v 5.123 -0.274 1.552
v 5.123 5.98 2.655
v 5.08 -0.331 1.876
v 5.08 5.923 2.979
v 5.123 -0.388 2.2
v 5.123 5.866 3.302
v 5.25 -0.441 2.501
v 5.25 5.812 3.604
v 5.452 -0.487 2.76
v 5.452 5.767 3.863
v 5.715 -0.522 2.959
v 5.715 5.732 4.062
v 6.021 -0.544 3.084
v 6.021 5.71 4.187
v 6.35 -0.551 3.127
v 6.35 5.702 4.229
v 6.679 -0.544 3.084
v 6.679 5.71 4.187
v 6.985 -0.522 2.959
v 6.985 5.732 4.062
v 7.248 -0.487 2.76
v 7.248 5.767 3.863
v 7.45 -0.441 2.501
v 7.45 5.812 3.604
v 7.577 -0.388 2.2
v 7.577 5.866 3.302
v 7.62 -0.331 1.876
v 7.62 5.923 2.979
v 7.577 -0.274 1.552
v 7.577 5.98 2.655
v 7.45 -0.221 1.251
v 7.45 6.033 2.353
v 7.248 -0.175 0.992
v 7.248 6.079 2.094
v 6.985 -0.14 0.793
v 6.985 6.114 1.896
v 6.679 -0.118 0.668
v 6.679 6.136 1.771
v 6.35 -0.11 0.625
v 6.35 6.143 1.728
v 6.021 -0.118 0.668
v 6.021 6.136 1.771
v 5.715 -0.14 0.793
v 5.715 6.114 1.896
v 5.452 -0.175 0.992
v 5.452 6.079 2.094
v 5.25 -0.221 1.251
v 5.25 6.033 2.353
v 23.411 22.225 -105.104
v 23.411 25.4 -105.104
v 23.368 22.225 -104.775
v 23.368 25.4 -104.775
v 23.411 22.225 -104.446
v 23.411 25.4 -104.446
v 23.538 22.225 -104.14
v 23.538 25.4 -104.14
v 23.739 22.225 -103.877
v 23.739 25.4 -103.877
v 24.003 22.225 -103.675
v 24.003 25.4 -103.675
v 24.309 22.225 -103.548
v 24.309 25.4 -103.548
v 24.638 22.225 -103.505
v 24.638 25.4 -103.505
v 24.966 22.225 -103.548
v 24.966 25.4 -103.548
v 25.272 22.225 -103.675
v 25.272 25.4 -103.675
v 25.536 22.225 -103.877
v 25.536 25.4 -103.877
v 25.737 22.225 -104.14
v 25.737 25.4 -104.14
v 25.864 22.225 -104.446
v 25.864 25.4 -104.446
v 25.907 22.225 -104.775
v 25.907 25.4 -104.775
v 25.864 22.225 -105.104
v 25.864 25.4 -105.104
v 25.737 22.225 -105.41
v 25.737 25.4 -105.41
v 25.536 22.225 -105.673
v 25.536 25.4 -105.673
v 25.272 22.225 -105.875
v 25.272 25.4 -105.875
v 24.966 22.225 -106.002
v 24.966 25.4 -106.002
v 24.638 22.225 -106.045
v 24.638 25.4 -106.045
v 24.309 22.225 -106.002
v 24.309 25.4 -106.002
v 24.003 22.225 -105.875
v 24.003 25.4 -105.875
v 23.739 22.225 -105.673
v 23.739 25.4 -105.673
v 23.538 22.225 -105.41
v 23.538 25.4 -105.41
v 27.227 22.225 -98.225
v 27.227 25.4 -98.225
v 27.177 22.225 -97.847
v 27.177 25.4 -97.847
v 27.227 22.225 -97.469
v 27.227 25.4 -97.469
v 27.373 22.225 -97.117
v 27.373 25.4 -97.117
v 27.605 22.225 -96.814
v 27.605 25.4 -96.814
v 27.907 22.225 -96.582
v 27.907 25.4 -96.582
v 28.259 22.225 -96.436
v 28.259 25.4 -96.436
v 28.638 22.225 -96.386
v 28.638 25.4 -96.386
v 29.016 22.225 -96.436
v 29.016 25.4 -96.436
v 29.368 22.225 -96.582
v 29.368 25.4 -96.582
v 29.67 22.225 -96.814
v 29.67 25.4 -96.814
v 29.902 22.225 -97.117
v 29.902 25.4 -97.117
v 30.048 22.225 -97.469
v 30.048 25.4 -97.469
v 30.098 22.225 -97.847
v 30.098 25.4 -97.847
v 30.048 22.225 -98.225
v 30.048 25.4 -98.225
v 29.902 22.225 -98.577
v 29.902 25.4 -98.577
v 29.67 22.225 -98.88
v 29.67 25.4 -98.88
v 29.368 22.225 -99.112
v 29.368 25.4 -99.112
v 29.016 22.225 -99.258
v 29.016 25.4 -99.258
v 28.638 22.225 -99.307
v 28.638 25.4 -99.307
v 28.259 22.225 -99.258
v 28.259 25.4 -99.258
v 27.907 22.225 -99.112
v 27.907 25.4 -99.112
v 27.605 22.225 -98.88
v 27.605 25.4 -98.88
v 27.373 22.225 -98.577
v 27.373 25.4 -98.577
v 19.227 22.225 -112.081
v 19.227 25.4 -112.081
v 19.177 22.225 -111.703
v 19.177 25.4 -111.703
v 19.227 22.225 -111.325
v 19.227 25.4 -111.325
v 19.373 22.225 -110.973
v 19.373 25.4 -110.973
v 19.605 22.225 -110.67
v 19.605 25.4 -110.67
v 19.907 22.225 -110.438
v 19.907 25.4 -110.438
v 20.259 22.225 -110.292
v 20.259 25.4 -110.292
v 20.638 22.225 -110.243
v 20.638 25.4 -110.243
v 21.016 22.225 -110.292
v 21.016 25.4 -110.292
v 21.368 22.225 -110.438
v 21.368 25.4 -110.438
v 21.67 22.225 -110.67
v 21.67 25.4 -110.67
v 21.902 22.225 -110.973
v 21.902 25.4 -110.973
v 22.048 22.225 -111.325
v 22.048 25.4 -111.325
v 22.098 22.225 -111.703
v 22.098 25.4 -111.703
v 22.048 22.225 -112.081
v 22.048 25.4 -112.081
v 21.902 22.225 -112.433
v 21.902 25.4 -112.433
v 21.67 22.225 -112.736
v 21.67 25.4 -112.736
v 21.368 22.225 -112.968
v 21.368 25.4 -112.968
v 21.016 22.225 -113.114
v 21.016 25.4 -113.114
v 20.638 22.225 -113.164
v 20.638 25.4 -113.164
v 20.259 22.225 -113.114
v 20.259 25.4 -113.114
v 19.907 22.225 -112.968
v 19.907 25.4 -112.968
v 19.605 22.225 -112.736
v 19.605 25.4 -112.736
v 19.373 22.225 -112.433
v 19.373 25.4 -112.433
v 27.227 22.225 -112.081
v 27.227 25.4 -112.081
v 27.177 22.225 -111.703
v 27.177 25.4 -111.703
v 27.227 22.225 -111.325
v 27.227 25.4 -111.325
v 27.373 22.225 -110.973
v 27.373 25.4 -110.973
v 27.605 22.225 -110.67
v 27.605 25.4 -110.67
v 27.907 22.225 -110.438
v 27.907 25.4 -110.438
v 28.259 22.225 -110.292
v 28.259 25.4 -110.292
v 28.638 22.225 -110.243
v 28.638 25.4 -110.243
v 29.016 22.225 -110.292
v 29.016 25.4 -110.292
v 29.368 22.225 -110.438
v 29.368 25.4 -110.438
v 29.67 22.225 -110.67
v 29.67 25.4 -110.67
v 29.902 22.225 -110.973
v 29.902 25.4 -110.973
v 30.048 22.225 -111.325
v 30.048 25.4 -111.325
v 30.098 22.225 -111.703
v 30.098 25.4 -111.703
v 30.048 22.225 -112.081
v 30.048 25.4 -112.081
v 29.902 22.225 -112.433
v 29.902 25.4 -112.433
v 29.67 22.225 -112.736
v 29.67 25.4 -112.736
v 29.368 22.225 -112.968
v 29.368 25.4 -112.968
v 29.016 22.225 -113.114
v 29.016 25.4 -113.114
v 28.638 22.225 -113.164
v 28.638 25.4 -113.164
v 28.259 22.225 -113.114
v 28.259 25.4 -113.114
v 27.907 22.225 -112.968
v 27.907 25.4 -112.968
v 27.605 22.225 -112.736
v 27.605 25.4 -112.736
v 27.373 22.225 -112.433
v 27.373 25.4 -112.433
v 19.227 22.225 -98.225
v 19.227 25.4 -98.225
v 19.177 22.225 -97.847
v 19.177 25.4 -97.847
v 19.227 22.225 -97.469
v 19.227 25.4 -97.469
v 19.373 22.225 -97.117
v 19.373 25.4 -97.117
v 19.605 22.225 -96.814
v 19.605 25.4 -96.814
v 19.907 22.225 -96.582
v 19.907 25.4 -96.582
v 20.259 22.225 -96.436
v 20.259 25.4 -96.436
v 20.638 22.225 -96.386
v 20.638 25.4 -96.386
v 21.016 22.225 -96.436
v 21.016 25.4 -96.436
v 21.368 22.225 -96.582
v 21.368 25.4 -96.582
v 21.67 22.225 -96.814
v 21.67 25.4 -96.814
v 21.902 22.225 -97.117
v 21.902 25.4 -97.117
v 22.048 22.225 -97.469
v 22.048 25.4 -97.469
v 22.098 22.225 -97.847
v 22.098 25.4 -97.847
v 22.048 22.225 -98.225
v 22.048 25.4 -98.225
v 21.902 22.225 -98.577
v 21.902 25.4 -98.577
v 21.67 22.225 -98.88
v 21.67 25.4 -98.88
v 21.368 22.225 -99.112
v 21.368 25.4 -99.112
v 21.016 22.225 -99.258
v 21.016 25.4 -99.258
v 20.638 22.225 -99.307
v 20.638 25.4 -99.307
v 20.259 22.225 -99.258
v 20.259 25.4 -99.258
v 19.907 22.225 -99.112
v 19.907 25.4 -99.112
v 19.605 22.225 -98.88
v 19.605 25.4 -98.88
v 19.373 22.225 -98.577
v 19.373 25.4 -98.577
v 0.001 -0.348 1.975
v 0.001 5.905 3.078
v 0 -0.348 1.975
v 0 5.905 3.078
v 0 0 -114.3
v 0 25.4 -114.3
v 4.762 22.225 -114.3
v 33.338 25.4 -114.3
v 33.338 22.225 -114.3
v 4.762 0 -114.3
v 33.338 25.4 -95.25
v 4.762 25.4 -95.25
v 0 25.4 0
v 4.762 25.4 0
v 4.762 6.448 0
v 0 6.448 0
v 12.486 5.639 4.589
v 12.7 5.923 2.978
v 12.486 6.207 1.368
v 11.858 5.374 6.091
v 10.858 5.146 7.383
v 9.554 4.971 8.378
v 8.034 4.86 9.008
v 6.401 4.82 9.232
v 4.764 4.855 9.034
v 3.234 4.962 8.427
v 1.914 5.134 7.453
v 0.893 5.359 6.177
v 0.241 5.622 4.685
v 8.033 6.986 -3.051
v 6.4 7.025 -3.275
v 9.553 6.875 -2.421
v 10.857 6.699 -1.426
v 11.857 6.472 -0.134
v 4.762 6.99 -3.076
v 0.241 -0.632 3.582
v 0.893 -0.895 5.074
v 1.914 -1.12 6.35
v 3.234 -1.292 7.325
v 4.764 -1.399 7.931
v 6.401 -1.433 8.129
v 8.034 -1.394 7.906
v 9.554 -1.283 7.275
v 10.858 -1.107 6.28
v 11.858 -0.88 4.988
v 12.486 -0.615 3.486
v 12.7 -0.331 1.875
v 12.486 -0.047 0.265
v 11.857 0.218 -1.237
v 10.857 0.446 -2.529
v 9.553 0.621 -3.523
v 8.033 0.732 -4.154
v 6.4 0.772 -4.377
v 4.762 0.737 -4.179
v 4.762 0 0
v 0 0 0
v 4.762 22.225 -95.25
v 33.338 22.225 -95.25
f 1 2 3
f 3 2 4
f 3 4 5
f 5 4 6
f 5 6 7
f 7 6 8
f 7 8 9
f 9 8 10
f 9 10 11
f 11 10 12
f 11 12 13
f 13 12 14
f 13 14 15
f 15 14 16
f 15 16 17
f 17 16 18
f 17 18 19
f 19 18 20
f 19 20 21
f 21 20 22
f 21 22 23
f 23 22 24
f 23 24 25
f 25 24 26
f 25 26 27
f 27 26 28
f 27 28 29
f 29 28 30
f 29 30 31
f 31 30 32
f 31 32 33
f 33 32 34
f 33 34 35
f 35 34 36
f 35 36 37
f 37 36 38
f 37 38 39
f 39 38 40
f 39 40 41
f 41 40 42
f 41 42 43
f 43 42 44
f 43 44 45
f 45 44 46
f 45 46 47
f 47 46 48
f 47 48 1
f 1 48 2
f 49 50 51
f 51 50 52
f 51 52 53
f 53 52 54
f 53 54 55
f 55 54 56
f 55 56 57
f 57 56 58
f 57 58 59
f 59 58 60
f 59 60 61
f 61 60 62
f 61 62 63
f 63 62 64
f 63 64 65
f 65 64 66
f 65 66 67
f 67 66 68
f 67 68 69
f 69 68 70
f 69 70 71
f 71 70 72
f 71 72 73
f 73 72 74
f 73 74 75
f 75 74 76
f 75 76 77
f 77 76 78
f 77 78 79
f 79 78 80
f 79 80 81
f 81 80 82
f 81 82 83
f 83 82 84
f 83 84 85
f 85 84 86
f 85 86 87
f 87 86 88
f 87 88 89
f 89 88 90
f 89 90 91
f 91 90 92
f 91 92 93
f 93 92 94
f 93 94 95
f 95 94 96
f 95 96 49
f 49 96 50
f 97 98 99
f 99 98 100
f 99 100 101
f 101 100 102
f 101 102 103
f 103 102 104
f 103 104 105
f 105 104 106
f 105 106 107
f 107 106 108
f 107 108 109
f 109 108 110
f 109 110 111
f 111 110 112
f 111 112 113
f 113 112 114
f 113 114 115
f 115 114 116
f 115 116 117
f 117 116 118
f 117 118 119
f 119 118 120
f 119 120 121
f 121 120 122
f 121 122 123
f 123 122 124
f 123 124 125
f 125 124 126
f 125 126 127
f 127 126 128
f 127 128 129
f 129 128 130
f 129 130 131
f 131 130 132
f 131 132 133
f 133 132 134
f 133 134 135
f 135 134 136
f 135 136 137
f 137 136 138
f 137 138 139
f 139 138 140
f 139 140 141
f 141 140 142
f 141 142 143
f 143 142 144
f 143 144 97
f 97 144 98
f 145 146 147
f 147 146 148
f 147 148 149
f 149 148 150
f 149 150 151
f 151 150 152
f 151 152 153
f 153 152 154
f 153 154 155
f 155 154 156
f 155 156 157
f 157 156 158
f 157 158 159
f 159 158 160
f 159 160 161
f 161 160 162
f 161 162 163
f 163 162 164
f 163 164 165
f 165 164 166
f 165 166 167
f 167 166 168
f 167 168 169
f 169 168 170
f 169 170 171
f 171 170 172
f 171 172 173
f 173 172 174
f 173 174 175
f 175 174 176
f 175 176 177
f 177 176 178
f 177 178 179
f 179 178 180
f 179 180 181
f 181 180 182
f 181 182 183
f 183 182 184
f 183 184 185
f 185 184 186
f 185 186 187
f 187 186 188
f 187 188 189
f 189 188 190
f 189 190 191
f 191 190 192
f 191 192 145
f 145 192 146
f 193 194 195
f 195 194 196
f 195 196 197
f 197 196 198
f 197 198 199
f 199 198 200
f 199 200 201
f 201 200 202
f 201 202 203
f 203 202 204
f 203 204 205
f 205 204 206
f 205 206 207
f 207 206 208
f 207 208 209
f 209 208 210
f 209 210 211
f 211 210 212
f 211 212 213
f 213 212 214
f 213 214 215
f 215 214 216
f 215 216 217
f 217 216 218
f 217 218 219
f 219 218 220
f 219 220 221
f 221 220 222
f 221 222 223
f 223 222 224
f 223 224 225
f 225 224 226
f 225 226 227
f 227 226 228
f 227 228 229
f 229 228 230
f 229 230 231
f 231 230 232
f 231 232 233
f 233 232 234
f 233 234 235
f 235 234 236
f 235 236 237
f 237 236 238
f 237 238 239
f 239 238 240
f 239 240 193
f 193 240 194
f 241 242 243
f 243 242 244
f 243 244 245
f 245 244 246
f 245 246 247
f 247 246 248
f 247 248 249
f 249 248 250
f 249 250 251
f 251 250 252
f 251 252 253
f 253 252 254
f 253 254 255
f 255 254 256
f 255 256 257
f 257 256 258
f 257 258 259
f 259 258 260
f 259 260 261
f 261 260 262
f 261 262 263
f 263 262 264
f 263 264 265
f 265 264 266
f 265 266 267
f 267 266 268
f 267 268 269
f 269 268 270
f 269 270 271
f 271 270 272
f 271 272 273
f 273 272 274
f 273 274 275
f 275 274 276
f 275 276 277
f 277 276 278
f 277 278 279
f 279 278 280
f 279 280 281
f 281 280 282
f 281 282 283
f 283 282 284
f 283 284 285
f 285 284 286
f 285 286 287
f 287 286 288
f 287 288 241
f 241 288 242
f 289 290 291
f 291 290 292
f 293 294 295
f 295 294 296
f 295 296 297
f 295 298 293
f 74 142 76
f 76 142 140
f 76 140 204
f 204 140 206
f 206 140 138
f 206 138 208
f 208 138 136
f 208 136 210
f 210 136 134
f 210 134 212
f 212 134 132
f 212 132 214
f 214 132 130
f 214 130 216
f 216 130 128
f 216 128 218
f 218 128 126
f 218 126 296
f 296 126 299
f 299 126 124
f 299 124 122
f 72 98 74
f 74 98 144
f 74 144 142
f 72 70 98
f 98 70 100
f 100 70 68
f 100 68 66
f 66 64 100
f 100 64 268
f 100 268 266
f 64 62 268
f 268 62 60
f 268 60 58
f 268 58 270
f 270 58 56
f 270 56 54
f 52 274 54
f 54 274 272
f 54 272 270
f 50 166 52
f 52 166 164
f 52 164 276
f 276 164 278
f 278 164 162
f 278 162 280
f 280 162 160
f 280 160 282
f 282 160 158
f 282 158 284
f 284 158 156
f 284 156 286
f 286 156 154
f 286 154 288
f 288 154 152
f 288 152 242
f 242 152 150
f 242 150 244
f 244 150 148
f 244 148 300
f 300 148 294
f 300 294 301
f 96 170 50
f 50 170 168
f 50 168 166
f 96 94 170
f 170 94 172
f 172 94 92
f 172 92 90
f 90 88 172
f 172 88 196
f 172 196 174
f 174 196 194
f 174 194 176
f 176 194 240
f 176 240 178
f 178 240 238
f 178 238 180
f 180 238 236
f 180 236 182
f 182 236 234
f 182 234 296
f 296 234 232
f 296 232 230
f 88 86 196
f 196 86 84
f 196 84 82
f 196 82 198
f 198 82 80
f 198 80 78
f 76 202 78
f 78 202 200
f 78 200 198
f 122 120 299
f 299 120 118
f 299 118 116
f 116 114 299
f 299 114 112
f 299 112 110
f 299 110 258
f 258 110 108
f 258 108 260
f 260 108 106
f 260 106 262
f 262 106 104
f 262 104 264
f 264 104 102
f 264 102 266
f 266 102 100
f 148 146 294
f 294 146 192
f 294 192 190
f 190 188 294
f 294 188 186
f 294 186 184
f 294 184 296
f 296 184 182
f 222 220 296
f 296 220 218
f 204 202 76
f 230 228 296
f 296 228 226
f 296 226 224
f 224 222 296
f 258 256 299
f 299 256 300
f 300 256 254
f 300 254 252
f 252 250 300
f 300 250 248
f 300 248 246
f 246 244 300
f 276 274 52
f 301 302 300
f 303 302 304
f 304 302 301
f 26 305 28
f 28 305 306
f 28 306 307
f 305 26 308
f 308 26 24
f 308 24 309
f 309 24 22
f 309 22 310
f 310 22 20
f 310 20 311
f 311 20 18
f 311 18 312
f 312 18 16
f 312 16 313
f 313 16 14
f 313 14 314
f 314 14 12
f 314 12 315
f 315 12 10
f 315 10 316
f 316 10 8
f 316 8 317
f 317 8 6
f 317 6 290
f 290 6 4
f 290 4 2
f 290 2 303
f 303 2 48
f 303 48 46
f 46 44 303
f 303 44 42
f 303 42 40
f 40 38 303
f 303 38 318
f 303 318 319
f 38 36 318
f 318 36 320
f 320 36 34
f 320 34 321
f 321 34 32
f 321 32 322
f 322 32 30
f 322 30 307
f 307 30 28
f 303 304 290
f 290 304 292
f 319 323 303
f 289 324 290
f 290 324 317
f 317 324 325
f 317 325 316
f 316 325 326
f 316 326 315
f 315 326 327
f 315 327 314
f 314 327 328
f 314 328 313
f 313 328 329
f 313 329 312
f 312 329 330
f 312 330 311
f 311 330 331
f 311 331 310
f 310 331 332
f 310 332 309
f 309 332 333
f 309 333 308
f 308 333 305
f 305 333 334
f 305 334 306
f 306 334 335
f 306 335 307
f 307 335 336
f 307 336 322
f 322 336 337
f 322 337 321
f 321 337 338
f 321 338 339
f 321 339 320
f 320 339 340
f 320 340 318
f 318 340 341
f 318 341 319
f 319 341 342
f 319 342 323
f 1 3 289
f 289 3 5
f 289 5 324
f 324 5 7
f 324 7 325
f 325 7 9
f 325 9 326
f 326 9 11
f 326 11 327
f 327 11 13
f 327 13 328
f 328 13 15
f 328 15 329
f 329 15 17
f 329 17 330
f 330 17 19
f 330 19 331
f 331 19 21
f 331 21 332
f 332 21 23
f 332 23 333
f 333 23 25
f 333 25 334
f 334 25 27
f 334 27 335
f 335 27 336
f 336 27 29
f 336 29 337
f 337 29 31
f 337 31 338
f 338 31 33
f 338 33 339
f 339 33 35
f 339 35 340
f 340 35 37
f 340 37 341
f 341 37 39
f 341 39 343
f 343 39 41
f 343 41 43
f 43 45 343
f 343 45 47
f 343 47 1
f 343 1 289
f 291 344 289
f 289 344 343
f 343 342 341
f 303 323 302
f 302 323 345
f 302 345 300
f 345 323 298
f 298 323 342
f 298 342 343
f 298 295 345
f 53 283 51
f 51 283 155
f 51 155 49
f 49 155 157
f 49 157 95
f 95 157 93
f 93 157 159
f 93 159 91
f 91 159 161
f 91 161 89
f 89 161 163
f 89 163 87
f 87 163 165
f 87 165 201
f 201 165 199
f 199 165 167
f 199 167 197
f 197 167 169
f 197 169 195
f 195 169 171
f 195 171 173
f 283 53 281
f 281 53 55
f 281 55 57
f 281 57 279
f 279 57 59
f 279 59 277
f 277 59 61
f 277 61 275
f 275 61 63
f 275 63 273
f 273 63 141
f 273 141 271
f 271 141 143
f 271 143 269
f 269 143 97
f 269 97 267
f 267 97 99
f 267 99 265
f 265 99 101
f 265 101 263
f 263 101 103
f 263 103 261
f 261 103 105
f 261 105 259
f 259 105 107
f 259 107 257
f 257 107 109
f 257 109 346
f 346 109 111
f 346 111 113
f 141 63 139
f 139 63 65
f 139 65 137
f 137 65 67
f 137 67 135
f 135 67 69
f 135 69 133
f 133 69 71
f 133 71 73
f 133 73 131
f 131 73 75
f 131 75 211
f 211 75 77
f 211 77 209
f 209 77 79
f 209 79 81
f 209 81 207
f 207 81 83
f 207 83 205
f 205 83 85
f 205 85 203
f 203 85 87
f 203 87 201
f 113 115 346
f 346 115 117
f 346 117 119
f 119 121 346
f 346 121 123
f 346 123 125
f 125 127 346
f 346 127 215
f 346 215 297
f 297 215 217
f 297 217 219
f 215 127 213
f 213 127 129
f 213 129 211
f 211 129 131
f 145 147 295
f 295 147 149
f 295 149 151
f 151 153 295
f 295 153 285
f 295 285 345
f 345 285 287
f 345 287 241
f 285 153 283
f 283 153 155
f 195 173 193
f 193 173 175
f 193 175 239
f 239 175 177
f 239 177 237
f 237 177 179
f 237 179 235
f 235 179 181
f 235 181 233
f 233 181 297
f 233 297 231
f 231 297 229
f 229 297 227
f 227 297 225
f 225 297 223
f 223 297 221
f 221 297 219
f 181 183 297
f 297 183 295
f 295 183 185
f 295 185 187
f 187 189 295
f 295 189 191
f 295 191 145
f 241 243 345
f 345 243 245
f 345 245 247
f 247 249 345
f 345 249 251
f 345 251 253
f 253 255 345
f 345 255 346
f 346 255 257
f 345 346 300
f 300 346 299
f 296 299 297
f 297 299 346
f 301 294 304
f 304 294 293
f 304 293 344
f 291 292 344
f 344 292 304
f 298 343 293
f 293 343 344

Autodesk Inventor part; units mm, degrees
ref_plane "YZ Plane" through (0, 0, 0) normal (1, 0, 0) x (0, 1, 0)
ref_plane "XZ Plane" through (0, 0, 0) normal (0, 1, 0) x (-1, 0, 0)
ref_plane "XY Plane" through (0, 0, 0) normal (0, 0, 1) x (1, 0, 0)
sketch "Sketch2" plane through (0, 0, 0) normal (1, 0, 0) x (0, 1, 0)
  line L0 (0, 0) -> (25.4, 0)
  line L1 (25.4, 0) -> (25.4, -114.3)
  line L2 (25.4, -114.3) -> (0, -114.3)
  line L3 (0, -114.3) -> (0, 0)
  dimension "d6" = 25.4
  dimension "d7" = 114.3
extrude "Extrusion2" add sketch "Sketch2" along normal blind 4.7625
sketch "Sketch3" plane through (4.7625, 0, 0) normal (1, 0, 0) x (0, 0, -1)
  line L0 (0, 0) -> (114.3, 0) projected
  line L1 (0, 0) -> (-14.429, -2.5442)
  line L2 (0, 0) -> (14.6516, 0) construction
  dimension "d10" = 170
ref_plane "Work Plane1" through (4.7625, -2.5442, 14.429) normal (0, 0.9848078, 0.1736482) x (0, 0.1736482, -0.9848078)
sketch "Sketch4" plane through (4.7625, -2.5442, 14.429) normal (0, 0.9848078, 0.1736482) x (0, 0.1736482, -0.9848078)
  line L0 (127.2151, 4.7625) -> (14.6516, 4.7625) projected
  line L1 (127.2151, 4.7625) -> (127.2151, 0) projected
  line L2 (14.6516, 0) -> (127.2151, 0) projected
  line L3 (14.6516, 4.7625) -> (14.6516, 0) projected
  line L4 (14.6516, 4.7625) -> (14.6516, 0)
  circle A0 centre (12.7466, -1.5875) radius 6.35
  dimension "d28" = 12.7
  dimension "d29" = 4.7625
  dimension "d30" = 1.5875
  dimension "d40" = 1.905
sketch "Sketch5" plane through (0, 25.4, 0) normal (0, 1, 0) x (1, 0, 0)
  line L0 (0, 0) -> (0, 114.3) projected
  line L1 (0, 0) -> (4.7625, 0) projected
  line L2 (4.7625, 114.3) -> (4.7625, 0) projected
  line L3 (0, 114.3) -> (4.7625, 114.3) projected
  line L4 (0, 114.3) -> (0, 0) projected
  line L5 (0, 114.3) -> (33.3375, 114.3)
  line L6 (33.3375, 114.3) -> (33.3375, 95.25)
  line L7 (33.3375, 95.25) -> (0, 95.25)
  line L8 (0, 95.25) -> (0, 114.3)
  dimension "d47" = 33.3375
  dimension "d48" = 4.7625
  dimension "d49" = 19.05
extrude "Extrusion4" add sketch "Sketch5" against normal blind 3.175 contours L0 L3 L2 L7 | L2 L5 L6 L7
extrude "Extrusion6" add sketch "Sketch4" along normal blind 6.35 contours A0 L2 L3 | L3 L2 A0
sketch "Sketch10" plane through (0, 0, 0) normal (-1, 0, 0) x (0, 0, 1)
  line L0 (0, 25.4) -> (-114.3, 25.4) projected
  line L1 (-114.3, 25.4) -> (-114.3, 0) projected
  line L2 (-114.3, 0) -> (0, 0) projected
  line L3 (0, 0) -> (0, 25.4) projected
  line L4 (-3.0762, 6.9904) -> (-4.1789, 0.7369) projected
  line L5 (0, 6.448) -> (-3.0762, 6.9904) projected
  line L6 (0, 0) -> (0, 6.448) projected
  line L7 (-4.1789, 0.7369) -> (0, 0) projected
  line L8 (9.2323, 4.8201) -> (-3.2748, 7.0254) projected
  line L9 (8.1296, -1.4335) -> (9.2323, 4.8201) projected
  line L10 (3.078, 5.9052) -> (1.5105, -2.9848)
  line L11 (3.078, 5.9052) -> (12.1052, 5.9052) construction
  line L12 (-114.3, 0) -> (0, 0) projected
  line L13 (3.078, 5.9052) -> (0, 6.448)
  line L14 (0, 0) -> (0, 25.4) projected
  line L15 (0, 0) -> (0, 6.448)
  line L16 (0, 0) -> (1.9753, -0.3483)
  line L17 (5.253, -0.9262) -> (-1.5008, 0.2646) projected
  line L18 (0, 0) -> (4.9253, -0.8685)
  point P0 (-1.1172, 0.197)
  dimension "d41" = 12.3085
  dimension "d42" = 6.1542
  dimension "d43" = 100
  dimension "d44" = 8.89
extrude "Extrusion9" add sketch "Sketch10" against normal blind 2.54
sketch "Sketch11" plane through (0, 25.4, 0) normal (0, 1, 0) x (1, 0, 0)
  line L0 (0, 0) -> (4.7625, 0) projected
  line L1 (4.7625, 95.25) -> (4.7625, 0) projected
  line L2 (4.7625, 95.25) -> (33.3375, 95.25) projected
  line L3 (33.3375, 95.25) -> (33.3375, 114.3) projected
  line L4 (0, 114.3) -> (33.3375, 114.3) projected
  line L5 (0, 0) -> (0, 114.3) projected
  circle A0 centre (24.6375, 104.775) radius 8
  line L6 (20.6375, 111.7032) -> (28.6375, 111.7032)
  line L7 (28.6375, 111.7032) -> (28.6375, 97.8468)
  line L8 (28.6375, 97.8468) -> (20.6375, 97.8468)
  line L9 (20.6375, 97.8468) -> (20.6375, 111.7032)
  point P0 (0, 0)
  dimension "d50" = 16
  dimension "d53" = 19.05
  dimension "d54" = 28.575
  dimension "d55" = 9.525
  dimension "d56" = 8
  dimension "d57" = 4
  dimension "d58" = 15.875
hole "Hole1" at (20.6375, 25.4, -111.7032) at (28.6375, 25.4, -111.7032) at (28.6375, 25.4, -97.8468) at (20.6375, 25.4, -97.8468) direction (0, -1, 0) diameter 2.921 end through all
sketch "Sketch12" plane through (0, 25.4, 0) normal (0, 1, 0) x (1, 0, 0)
  circle A0 centre (28.6375, 97.8468) radius 1.4605 projected
  circle A1 centre (20.6375, 111.7032) radius 1.4605 projected
  circle A2 centre (28.6375, 111.7032) radius 1.4605 projected
  circle A3 centre (20.6375, 97.8468) radius 1.4605 projected
  line L0 (0, 0) -> (4.7625, 0) projected
  line L1 (4.7625, 95.25) -> (4.7625, 0) projected
  line L2 (4.7625, 95.25) -> (33.3375, 95.25) projected
  line L3 (33.3375, 95.25) -> (33.3375, 114.3) projected
  line L4 (0, 114.3) -> (33.3375, 114.3) projected
  line L5 (0, 0) -> (0, 114.3) projected
  circle A4 centre (28.6375, 97.8468) radius 1.4605 projected
  arc A5 (20.6375, 111.7032) -> (28.6375, 111.7032) centre (24.6375, 104.775) ccw
  point P0 (0, 0)
hole "Hole2" at (24.6375, 25.4, -104.775) direction (0, -1, 0) diameter 2.54 end through all
sketch "Sketch13" plane through (4.7625, 3.7093, 15.5317) normal (0, 0.9848078, 0.1736482) x (1, 0, 0)
  line L0 (-4.7625, 15.7713) -> (0, 15.7713) projected
  line L1 (-4.7625, 12.6458) -> (-4.7625, 15.7713) projected
  line L2 (-4.7625, 12.6458) -> (-4.7617, 12.6458) projected
  arc A0 (-4.7617, 12.6458) -> (0, 18.8949) centre (1.5875, 12.7466) ccw projected
  line L3 (0, 15.7713) -> (0, 18.8949) projected
  point P0 (-4.7625, 14.6516)
hole "Hole3" at (6.35, 5.9227, 2.9787) direction (0, -0.9848078, -0.1736482) diameter 2.54 end through all
equation "\"d30\" = 0.5 * d28 - d29"
equation "\"d42\" = 0.5 * d41"
equation "\"d55\" = 0.5 * d53"
equation "\"d57\" = 0.5 * d56"
properties part number "WheelIntakeMotorMount"
